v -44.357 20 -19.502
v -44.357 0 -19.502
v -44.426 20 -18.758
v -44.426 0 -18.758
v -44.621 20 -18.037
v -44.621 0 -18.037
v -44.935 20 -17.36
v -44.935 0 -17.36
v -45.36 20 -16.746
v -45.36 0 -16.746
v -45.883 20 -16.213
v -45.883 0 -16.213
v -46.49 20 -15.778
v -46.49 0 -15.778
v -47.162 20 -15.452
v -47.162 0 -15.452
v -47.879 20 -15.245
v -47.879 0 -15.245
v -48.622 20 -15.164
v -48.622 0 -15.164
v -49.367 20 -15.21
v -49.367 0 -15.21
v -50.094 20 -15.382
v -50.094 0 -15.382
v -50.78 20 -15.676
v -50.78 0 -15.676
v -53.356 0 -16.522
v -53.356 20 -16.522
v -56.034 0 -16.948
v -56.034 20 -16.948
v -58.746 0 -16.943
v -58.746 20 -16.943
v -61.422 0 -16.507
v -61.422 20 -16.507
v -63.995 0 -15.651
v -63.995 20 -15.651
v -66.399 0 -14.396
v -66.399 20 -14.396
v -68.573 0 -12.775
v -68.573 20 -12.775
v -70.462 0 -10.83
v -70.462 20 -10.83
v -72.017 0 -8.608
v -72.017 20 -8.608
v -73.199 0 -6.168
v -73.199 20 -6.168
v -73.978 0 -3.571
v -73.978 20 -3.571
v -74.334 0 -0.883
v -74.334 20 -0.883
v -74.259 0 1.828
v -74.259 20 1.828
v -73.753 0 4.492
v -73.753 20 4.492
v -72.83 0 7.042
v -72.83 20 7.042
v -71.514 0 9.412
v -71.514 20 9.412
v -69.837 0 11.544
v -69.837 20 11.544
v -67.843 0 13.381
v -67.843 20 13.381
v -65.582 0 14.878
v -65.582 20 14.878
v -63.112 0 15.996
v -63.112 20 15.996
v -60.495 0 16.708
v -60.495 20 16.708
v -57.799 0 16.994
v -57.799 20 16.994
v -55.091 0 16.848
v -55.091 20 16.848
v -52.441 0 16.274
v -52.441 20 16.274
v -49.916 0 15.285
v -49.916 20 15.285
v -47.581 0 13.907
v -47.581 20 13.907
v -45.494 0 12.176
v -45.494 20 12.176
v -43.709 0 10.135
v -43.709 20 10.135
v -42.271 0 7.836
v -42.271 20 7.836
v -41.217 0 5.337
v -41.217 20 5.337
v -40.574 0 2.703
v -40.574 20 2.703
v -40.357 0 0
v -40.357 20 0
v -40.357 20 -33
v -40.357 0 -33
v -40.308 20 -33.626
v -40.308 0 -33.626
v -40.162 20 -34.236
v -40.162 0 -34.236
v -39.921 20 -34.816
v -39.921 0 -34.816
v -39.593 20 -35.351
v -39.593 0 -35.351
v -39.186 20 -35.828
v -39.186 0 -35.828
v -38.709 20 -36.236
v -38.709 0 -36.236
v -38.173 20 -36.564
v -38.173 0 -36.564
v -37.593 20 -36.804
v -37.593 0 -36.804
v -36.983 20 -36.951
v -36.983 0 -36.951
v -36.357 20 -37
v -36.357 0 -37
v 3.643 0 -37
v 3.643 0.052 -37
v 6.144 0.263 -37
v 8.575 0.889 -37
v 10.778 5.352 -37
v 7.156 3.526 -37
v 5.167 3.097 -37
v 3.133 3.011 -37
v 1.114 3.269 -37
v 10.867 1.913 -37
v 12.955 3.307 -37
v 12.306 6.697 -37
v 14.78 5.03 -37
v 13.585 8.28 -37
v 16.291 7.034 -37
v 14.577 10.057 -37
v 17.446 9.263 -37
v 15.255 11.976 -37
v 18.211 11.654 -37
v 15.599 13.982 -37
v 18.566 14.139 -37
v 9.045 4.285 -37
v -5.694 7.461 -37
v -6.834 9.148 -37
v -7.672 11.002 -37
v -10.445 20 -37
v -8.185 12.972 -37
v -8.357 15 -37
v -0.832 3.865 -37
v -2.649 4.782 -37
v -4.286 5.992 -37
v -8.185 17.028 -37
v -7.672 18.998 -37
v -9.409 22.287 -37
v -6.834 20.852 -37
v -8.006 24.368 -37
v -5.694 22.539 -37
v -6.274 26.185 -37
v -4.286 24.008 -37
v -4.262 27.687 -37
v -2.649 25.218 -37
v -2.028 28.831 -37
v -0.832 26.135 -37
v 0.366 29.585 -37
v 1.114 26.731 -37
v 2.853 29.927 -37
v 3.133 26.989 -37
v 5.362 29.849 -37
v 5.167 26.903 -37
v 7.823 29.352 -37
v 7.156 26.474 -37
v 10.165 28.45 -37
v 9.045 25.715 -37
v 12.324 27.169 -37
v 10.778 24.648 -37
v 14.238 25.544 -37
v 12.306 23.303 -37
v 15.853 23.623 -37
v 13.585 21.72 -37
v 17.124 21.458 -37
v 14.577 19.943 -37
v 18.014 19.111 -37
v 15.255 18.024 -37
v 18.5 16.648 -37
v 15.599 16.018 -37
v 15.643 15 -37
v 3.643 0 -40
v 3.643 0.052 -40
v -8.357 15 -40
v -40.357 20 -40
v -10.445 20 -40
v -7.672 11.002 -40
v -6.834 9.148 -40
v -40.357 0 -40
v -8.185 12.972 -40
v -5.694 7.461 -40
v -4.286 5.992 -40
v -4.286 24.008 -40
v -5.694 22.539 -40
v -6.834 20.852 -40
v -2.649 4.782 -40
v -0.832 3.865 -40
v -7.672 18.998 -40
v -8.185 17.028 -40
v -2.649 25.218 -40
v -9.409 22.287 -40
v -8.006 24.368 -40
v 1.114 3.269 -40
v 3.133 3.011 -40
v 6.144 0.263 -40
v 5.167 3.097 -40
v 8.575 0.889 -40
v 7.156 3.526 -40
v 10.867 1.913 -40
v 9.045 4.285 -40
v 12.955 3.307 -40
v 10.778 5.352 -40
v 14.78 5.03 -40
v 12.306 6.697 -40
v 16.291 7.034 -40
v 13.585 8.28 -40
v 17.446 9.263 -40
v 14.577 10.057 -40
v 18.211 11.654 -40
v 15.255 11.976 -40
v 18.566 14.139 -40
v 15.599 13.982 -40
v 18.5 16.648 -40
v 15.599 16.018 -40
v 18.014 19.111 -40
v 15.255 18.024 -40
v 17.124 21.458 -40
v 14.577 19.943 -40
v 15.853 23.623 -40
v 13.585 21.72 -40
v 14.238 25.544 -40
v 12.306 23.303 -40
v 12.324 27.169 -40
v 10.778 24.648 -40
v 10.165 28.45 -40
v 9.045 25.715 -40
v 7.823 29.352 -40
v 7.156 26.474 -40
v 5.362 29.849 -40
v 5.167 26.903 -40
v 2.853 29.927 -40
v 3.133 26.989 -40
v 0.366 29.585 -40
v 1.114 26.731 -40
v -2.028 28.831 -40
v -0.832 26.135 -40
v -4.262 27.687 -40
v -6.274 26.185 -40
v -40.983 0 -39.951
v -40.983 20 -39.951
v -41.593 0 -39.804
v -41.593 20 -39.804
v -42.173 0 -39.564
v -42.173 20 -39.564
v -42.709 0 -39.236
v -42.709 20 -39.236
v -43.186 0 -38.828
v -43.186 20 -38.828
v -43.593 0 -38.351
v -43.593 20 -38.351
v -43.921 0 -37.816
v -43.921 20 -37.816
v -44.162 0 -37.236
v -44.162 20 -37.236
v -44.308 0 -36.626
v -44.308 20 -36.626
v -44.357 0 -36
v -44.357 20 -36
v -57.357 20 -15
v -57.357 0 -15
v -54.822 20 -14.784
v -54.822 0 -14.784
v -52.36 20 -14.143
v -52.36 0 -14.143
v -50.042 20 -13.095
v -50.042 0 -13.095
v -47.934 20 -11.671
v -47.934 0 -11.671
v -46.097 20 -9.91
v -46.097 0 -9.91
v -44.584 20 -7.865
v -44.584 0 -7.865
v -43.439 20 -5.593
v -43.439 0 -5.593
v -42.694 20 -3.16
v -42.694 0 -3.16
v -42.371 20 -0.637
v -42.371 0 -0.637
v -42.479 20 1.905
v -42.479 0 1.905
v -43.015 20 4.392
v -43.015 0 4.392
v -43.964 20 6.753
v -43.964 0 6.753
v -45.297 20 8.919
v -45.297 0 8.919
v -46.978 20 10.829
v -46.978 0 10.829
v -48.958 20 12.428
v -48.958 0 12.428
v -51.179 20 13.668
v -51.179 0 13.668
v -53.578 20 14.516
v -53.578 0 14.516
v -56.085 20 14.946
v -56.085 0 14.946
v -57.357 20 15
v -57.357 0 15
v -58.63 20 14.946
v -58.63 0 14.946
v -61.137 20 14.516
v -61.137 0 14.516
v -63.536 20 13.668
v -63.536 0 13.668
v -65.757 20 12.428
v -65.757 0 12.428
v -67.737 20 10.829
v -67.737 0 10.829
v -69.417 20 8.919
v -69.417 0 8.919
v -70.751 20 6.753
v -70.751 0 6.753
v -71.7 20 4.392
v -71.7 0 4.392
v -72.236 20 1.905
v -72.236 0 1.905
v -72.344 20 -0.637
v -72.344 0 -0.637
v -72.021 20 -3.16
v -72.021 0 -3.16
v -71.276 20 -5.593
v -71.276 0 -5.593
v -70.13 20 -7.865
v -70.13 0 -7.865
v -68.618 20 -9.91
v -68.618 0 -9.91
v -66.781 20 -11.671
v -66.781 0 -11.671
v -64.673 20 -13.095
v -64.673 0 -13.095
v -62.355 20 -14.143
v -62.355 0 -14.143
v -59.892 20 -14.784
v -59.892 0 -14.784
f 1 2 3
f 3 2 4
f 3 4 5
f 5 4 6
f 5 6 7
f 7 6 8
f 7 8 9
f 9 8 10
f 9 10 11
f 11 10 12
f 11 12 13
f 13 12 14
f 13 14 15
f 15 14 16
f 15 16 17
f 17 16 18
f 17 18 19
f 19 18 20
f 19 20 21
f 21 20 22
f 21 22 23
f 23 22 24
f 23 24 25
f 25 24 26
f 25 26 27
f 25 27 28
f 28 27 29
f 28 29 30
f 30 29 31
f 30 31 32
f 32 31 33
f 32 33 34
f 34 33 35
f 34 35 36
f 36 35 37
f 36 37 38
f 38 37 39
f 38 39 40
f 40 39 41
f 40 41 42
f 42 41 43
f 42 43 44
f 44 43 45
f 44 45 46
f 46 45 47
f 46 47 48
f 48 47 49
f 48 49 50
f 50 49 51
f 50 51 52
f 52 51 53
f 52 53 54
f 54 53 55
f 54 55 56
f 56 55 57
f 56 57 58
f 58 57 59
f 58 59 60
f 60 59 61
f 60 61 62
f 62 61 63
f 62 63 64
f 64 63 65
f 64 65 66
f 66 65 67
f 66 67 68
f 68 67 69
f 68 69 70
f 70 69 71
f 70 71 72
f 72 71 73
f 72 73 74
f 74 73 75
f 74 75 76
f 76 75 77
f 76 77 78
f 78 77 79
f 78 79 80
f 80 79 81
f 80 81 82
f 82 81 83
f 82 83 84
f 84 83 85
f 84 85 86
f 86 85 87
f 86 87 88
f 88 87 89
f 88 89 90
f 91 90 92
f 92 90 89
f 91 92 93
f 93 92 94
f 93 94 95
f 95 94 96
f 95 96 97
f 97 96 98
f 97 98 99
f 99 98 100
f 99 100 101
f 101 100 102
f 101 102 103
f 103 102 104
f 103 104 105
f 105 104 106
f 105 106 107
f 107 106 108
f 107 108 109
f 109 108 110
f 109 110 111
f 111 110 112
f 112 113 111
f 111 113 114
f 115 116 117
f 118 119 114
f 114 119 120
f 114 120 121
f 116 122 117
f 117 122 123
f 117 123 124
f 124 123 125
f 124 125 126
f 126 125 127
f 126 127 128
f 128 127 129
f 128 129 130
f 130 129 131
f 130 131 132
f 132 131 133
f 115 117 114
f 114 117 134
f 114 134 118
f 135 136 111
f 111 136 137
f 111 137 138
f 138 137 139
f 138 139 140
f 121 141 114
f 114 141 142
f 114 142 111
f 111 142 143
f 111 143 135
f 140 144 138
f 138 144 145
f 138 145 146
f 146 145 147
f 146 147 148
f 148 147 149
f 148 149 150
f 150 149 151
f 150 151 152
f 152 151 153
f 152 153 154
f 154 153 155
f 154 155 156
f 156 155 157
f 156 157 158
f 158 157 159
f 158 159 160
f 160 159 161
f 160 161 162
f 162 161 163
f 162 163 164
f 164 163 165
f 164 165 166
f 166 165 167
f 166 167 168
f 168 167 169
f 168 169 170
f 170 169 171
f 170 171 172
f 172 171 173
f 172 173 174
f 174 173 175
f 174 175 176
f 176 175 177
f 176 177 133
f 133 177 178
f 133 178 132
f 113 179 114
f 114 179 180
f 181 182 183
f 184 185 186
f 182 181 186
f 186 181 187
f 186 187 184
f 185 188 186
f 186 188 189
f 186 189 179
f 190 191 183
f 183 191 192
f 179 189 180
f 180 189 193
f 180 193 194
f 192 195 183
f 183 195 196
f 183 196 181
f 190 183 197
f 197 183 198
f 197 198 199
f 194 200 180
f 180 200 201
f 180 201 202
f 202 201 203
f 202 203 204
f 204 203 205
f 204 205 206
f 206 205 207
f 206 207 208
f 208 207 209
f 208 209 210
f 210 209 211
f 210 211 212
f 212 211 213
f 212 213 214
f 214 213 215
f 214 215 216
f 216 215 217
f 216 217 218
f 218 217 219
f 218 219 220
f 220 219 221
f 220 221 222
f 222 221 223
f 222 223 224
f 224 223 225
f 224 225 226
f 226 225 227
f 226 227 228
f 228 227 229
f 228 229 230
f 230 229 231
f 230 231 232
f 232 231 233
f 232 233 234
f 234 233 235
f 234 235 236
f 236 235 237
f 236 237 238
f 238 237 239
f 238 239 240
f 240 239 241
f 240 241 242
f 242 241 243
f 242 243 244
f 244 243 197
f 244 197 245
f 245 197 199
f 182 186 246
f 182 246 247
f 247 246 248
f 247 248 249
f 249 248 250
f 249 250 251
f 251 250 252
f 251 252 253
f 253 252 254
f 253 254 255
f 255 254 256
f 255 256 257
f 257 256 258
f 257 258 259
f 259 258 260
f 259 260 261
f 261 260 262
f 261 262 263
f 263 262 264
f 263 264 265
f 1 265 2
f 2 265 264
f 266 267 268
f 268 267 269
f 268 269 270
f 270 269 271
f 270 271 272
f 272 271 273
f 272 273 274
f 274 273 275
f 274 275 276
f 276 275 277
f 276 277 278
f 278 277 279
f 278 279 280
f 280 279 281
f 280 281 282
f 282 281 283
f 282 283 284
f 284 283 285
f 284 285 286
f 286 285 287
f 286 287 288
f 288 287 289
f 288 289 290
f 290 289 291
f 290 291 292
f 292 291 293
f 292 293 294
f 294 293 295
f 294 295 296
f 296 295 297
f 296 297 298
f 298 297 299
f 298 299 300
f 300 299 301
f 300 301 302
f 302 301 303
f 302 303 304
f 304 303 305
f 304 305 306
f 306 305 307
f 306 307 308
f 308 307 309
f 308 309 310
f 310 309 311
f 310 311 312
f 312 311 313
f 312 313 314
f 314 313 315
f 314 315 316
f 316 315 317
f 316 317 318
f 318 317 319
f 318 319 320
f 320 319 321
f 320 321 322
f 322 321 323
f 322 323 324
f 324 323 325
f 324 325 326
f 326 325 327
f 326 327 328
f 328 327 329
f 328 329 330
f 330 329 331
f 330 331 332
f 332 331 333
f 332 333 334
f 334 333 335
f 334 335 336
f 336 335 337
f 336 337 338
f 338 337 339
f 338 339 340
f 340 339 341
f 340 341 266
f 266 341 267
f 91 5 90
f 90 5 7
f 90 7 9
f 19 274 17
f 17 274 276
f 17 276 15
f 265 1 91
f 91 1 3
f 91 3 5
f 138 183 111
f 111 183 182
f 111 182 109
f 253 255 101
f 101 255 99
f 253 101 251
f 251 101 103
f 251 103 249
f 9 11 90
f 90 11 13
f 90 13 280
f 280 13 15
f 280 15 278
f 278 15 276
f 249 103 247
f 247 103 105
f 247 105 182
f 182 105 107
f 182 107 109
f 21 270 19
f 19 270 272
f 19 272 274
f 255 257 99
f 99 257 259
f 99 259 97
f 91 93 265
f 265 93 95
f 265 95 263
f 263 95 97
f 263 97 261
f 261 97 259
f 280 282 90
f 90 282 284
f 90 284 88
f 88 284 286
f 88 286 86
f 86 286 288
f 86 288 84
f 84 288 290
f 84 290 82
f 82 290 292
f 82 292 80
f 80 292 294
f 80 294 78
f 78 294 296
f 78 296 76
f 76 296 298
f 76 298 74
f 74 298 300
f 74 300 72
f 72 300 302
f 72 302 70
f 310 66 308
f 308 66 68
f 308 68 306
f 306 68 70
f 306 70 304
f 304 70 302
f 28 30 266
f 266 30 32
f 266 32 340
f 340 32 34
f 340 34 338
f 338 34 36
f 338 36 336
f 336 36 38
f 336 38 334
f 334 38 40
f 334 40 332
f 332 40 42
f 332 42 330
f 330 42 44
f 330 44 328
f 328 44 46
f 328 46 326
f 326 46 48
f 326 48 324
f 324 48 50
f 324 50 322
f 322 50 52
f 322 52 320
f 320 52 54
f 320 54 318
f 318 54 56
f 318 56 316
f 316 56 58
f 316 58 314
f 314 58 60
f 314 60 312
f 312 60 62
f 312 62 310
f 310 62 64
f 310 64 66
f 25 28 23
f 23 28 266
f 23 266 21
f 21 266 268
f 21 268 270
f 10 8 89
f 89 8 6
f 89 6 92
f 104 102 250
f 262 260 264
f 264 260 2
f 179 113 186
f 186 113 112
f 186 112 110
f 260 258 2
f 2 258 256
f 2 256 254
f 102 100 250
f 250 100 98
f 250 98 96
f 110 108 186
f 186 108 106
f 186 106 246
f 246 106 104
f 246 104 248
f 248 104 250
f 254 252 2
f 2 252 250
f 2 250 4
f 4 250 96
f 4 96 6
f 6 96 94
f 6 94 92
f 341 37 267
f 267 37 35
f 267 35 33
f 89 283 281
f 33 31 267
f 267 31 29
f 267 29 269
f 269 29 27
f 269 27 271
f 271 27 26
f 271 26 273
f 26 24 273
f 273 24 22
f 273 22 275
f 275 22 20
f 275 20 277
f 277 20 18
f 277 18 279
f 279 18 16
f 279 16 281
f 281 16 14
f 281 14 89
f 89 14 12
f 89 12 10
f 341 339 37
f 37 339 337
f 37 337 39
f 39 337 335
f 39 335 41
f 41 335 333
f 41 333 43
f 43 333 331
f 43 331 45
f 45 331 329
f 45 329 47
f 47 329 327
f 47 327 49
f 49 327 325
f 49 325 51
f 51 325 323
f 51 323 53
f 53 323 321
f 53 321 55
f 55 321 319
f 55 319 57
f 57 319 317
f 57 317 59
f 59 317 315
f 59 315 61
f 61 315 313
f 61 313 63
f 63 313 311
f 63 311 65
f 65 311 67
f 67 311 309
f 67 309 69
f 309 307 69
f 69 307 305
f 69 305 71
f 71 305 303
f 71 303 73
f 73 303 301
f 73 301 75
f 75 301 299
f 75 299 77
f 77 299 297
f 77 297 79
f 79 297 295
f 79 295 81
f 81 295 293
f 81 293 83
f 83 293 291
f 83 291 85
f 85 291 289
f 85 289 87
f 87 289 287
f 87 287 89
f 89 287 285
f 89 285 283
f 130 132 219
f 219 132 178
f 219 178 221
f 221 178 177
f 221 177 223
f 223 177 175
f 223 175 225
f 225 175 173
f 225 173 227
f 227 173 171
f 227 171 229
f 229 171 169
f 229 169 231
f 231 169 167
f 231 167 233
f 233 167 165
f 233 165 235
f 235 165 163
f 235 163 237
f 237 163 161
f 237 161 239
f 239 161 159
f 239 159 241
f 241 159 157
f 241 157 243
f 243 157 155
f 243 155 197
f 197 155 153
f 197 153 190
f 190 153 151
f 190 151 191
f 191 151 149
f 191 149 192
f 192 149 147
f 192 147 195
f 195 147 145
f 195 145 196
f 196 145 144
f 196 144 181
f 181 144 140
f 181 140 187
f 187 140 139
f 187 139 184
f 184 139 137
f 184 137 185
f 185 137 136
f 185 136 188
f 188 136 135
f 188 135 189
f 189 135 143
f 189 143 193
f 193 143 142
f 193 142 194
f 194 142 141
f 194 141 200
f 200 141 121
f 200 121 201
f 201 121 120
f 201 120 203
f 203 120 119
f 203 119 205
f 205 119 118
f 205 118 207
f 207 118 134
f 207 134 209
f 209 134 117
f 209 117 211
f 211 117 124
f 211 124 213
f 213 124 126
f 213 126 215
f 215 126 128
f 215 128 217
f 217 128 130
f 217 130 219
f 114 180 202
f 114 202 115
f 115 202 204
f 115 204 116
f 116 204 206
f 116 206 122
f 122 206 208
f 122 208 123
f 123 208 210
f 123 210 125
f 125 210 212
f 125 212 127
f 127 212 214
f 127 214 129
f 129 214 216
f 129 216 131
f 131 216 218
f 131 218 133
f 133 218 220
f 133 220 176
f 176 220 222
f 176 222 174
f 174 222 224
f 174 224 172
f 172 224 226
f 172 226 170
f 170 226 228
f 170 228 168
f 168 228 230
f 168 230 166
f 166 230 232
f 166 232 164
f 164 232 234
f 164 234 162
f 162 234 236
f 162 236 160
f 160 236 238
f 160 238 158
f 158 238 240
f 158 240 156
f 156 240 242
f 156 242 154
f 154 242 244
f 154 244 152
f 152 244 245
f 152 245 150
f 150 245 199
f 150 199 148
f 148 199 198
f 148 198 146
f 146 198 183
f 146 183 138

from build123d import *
from build123d.topology import SkipClean

# Parameters (mm, degrees)
SKETCH1_R           = 15
BOSS_EXTRUDE2_DEPTH = 20
CUT_EXTRUDE2_DEPTH  = 21
BOSS_EXTRUDE3_DEPTH = 3


with BuildPart() as part:
    # Sketch1 → Boss-Extrude2 (new body)
    # profile 1 of 2: a face of its own
    with BuildSketch(Plane(origin=(0, 0, 0), x_dir=(1, 0, 0), z_dir=(0, 1, 0))):
        with BuildLine():
            ThreePointArc((-50.780177481, 15.676092064), (-71.513924264, -9.412408123), (-40.357421401, 0))
            ThreePointArc((-40.357421401, 0), (-43.025497107, 9.143081868), (-50.192238582, 15.416230251))
            ThreePointArc((-50.192238582, 15.416230251), (-50.490994878, 15.535330889), (-50.780177481, 15.676092064))
        make_face()
        with Locations(Location((-57.357421401, 0, 0), (0, 0, 270))):
            Circle(SKETCH1_R, mode=Mode.SUBTRACT)
    # profile 2 of 2: a face of its own
    with BuildSketch(Plane(origin=(0, 0, 0), x_dir=(1, 0, 0), z_dir=(0, 1, 0))):
        with BuildLine():
            Line((-40.357421401, 0), (-40.357421401, 33))
            ThreePointArc((-40.357421401, 33), (-39.185848526, 35.828427125), (-36.357421401, 37))
            Line((-36.357421401, 37), (3.642578599, 37))
            Line((3.642578599, 37), (3.642578599, 40))
            Line((3.642578599, 40), (-40.357421401, 40))
            ThreePointArc((-40.357421401, 40), (-43.185848526, 38.828427125), (-44.357421401, 36))
            Line((-44.357421401, 36), (-44.357421401, 19.501688617))
            ThreePointArc((-44.357421401, 19.501688617), (-46.219952281, 15.952391985), (-50.192238582, 15.416230251))
            ThreePointArc((-50.192238582, 15.416230251), (-43.025497107, 9.143081868), (-40.357421401, 0))
        make_face()
    extrude(amount=BOSS_EXTRUDE2_DEPTH)

    # Sketch3 → Cut-Extrude2 (cut)
    with BuildSketch(Plane(origin=(0, 0, -40), x_dir=(-1, 0, 0), z_dir=(0, 0, -1))):
        with BuildLine():
            Line((-3.642578599, 20), (-3.642578599, 3))
            ThreePointArc((-3.642578599, 3), (4.842702775, 6.514718626), (8.357421401, 15))
            ThreePointArc((8.357421401, 15), (8.081425525, 17.558852734), (7.266133516, 20))
            Line((7.266133516, 20), (-3.642578599, 20))
        make_face()
        with BuildLine():
            ThreePointArc((7.266133516, 20), (-13.742083537, 21.480740698), (-3.642578599, 3))
            Line((-3.642578599, 3), (-3.642578599, 20))
            Line((-3.642578599, 20), (7.266133516, 20))
        make_face()
    extrude(amount=-CUT_EXTRUDE2_DEPTH, mode=Mode.SUBTRACT)

    # Sketch4 → Boss-Extrude3 (add)
    with SkipClean():  # the faces are left unmerged after this step: merging them gives an invalid solid
        with BuildSketch(Plane(origin=(0, 0, -40), x_dir=(-1, 0, 0), z_dir=(0, 0, -1))):
            with BuildLine():
                Line((-3.642578599, 0.051873716), (-3.642578599, 3))
                ThreePointArc((-3.642578599, 3), (-13.742083537, 21.480740698), (7.266133516, 20))
                Line((7.266133516, 20), (10.444524701, 20))
                ThreePointArc((10.444524701, 20), (-15.852965792, 23.622814157), (-3.642578599, 0.051873716))
            make_face()
        extrude(amount=-BOSS_EXTRUDE3_DEPTH)


solid = part.part
